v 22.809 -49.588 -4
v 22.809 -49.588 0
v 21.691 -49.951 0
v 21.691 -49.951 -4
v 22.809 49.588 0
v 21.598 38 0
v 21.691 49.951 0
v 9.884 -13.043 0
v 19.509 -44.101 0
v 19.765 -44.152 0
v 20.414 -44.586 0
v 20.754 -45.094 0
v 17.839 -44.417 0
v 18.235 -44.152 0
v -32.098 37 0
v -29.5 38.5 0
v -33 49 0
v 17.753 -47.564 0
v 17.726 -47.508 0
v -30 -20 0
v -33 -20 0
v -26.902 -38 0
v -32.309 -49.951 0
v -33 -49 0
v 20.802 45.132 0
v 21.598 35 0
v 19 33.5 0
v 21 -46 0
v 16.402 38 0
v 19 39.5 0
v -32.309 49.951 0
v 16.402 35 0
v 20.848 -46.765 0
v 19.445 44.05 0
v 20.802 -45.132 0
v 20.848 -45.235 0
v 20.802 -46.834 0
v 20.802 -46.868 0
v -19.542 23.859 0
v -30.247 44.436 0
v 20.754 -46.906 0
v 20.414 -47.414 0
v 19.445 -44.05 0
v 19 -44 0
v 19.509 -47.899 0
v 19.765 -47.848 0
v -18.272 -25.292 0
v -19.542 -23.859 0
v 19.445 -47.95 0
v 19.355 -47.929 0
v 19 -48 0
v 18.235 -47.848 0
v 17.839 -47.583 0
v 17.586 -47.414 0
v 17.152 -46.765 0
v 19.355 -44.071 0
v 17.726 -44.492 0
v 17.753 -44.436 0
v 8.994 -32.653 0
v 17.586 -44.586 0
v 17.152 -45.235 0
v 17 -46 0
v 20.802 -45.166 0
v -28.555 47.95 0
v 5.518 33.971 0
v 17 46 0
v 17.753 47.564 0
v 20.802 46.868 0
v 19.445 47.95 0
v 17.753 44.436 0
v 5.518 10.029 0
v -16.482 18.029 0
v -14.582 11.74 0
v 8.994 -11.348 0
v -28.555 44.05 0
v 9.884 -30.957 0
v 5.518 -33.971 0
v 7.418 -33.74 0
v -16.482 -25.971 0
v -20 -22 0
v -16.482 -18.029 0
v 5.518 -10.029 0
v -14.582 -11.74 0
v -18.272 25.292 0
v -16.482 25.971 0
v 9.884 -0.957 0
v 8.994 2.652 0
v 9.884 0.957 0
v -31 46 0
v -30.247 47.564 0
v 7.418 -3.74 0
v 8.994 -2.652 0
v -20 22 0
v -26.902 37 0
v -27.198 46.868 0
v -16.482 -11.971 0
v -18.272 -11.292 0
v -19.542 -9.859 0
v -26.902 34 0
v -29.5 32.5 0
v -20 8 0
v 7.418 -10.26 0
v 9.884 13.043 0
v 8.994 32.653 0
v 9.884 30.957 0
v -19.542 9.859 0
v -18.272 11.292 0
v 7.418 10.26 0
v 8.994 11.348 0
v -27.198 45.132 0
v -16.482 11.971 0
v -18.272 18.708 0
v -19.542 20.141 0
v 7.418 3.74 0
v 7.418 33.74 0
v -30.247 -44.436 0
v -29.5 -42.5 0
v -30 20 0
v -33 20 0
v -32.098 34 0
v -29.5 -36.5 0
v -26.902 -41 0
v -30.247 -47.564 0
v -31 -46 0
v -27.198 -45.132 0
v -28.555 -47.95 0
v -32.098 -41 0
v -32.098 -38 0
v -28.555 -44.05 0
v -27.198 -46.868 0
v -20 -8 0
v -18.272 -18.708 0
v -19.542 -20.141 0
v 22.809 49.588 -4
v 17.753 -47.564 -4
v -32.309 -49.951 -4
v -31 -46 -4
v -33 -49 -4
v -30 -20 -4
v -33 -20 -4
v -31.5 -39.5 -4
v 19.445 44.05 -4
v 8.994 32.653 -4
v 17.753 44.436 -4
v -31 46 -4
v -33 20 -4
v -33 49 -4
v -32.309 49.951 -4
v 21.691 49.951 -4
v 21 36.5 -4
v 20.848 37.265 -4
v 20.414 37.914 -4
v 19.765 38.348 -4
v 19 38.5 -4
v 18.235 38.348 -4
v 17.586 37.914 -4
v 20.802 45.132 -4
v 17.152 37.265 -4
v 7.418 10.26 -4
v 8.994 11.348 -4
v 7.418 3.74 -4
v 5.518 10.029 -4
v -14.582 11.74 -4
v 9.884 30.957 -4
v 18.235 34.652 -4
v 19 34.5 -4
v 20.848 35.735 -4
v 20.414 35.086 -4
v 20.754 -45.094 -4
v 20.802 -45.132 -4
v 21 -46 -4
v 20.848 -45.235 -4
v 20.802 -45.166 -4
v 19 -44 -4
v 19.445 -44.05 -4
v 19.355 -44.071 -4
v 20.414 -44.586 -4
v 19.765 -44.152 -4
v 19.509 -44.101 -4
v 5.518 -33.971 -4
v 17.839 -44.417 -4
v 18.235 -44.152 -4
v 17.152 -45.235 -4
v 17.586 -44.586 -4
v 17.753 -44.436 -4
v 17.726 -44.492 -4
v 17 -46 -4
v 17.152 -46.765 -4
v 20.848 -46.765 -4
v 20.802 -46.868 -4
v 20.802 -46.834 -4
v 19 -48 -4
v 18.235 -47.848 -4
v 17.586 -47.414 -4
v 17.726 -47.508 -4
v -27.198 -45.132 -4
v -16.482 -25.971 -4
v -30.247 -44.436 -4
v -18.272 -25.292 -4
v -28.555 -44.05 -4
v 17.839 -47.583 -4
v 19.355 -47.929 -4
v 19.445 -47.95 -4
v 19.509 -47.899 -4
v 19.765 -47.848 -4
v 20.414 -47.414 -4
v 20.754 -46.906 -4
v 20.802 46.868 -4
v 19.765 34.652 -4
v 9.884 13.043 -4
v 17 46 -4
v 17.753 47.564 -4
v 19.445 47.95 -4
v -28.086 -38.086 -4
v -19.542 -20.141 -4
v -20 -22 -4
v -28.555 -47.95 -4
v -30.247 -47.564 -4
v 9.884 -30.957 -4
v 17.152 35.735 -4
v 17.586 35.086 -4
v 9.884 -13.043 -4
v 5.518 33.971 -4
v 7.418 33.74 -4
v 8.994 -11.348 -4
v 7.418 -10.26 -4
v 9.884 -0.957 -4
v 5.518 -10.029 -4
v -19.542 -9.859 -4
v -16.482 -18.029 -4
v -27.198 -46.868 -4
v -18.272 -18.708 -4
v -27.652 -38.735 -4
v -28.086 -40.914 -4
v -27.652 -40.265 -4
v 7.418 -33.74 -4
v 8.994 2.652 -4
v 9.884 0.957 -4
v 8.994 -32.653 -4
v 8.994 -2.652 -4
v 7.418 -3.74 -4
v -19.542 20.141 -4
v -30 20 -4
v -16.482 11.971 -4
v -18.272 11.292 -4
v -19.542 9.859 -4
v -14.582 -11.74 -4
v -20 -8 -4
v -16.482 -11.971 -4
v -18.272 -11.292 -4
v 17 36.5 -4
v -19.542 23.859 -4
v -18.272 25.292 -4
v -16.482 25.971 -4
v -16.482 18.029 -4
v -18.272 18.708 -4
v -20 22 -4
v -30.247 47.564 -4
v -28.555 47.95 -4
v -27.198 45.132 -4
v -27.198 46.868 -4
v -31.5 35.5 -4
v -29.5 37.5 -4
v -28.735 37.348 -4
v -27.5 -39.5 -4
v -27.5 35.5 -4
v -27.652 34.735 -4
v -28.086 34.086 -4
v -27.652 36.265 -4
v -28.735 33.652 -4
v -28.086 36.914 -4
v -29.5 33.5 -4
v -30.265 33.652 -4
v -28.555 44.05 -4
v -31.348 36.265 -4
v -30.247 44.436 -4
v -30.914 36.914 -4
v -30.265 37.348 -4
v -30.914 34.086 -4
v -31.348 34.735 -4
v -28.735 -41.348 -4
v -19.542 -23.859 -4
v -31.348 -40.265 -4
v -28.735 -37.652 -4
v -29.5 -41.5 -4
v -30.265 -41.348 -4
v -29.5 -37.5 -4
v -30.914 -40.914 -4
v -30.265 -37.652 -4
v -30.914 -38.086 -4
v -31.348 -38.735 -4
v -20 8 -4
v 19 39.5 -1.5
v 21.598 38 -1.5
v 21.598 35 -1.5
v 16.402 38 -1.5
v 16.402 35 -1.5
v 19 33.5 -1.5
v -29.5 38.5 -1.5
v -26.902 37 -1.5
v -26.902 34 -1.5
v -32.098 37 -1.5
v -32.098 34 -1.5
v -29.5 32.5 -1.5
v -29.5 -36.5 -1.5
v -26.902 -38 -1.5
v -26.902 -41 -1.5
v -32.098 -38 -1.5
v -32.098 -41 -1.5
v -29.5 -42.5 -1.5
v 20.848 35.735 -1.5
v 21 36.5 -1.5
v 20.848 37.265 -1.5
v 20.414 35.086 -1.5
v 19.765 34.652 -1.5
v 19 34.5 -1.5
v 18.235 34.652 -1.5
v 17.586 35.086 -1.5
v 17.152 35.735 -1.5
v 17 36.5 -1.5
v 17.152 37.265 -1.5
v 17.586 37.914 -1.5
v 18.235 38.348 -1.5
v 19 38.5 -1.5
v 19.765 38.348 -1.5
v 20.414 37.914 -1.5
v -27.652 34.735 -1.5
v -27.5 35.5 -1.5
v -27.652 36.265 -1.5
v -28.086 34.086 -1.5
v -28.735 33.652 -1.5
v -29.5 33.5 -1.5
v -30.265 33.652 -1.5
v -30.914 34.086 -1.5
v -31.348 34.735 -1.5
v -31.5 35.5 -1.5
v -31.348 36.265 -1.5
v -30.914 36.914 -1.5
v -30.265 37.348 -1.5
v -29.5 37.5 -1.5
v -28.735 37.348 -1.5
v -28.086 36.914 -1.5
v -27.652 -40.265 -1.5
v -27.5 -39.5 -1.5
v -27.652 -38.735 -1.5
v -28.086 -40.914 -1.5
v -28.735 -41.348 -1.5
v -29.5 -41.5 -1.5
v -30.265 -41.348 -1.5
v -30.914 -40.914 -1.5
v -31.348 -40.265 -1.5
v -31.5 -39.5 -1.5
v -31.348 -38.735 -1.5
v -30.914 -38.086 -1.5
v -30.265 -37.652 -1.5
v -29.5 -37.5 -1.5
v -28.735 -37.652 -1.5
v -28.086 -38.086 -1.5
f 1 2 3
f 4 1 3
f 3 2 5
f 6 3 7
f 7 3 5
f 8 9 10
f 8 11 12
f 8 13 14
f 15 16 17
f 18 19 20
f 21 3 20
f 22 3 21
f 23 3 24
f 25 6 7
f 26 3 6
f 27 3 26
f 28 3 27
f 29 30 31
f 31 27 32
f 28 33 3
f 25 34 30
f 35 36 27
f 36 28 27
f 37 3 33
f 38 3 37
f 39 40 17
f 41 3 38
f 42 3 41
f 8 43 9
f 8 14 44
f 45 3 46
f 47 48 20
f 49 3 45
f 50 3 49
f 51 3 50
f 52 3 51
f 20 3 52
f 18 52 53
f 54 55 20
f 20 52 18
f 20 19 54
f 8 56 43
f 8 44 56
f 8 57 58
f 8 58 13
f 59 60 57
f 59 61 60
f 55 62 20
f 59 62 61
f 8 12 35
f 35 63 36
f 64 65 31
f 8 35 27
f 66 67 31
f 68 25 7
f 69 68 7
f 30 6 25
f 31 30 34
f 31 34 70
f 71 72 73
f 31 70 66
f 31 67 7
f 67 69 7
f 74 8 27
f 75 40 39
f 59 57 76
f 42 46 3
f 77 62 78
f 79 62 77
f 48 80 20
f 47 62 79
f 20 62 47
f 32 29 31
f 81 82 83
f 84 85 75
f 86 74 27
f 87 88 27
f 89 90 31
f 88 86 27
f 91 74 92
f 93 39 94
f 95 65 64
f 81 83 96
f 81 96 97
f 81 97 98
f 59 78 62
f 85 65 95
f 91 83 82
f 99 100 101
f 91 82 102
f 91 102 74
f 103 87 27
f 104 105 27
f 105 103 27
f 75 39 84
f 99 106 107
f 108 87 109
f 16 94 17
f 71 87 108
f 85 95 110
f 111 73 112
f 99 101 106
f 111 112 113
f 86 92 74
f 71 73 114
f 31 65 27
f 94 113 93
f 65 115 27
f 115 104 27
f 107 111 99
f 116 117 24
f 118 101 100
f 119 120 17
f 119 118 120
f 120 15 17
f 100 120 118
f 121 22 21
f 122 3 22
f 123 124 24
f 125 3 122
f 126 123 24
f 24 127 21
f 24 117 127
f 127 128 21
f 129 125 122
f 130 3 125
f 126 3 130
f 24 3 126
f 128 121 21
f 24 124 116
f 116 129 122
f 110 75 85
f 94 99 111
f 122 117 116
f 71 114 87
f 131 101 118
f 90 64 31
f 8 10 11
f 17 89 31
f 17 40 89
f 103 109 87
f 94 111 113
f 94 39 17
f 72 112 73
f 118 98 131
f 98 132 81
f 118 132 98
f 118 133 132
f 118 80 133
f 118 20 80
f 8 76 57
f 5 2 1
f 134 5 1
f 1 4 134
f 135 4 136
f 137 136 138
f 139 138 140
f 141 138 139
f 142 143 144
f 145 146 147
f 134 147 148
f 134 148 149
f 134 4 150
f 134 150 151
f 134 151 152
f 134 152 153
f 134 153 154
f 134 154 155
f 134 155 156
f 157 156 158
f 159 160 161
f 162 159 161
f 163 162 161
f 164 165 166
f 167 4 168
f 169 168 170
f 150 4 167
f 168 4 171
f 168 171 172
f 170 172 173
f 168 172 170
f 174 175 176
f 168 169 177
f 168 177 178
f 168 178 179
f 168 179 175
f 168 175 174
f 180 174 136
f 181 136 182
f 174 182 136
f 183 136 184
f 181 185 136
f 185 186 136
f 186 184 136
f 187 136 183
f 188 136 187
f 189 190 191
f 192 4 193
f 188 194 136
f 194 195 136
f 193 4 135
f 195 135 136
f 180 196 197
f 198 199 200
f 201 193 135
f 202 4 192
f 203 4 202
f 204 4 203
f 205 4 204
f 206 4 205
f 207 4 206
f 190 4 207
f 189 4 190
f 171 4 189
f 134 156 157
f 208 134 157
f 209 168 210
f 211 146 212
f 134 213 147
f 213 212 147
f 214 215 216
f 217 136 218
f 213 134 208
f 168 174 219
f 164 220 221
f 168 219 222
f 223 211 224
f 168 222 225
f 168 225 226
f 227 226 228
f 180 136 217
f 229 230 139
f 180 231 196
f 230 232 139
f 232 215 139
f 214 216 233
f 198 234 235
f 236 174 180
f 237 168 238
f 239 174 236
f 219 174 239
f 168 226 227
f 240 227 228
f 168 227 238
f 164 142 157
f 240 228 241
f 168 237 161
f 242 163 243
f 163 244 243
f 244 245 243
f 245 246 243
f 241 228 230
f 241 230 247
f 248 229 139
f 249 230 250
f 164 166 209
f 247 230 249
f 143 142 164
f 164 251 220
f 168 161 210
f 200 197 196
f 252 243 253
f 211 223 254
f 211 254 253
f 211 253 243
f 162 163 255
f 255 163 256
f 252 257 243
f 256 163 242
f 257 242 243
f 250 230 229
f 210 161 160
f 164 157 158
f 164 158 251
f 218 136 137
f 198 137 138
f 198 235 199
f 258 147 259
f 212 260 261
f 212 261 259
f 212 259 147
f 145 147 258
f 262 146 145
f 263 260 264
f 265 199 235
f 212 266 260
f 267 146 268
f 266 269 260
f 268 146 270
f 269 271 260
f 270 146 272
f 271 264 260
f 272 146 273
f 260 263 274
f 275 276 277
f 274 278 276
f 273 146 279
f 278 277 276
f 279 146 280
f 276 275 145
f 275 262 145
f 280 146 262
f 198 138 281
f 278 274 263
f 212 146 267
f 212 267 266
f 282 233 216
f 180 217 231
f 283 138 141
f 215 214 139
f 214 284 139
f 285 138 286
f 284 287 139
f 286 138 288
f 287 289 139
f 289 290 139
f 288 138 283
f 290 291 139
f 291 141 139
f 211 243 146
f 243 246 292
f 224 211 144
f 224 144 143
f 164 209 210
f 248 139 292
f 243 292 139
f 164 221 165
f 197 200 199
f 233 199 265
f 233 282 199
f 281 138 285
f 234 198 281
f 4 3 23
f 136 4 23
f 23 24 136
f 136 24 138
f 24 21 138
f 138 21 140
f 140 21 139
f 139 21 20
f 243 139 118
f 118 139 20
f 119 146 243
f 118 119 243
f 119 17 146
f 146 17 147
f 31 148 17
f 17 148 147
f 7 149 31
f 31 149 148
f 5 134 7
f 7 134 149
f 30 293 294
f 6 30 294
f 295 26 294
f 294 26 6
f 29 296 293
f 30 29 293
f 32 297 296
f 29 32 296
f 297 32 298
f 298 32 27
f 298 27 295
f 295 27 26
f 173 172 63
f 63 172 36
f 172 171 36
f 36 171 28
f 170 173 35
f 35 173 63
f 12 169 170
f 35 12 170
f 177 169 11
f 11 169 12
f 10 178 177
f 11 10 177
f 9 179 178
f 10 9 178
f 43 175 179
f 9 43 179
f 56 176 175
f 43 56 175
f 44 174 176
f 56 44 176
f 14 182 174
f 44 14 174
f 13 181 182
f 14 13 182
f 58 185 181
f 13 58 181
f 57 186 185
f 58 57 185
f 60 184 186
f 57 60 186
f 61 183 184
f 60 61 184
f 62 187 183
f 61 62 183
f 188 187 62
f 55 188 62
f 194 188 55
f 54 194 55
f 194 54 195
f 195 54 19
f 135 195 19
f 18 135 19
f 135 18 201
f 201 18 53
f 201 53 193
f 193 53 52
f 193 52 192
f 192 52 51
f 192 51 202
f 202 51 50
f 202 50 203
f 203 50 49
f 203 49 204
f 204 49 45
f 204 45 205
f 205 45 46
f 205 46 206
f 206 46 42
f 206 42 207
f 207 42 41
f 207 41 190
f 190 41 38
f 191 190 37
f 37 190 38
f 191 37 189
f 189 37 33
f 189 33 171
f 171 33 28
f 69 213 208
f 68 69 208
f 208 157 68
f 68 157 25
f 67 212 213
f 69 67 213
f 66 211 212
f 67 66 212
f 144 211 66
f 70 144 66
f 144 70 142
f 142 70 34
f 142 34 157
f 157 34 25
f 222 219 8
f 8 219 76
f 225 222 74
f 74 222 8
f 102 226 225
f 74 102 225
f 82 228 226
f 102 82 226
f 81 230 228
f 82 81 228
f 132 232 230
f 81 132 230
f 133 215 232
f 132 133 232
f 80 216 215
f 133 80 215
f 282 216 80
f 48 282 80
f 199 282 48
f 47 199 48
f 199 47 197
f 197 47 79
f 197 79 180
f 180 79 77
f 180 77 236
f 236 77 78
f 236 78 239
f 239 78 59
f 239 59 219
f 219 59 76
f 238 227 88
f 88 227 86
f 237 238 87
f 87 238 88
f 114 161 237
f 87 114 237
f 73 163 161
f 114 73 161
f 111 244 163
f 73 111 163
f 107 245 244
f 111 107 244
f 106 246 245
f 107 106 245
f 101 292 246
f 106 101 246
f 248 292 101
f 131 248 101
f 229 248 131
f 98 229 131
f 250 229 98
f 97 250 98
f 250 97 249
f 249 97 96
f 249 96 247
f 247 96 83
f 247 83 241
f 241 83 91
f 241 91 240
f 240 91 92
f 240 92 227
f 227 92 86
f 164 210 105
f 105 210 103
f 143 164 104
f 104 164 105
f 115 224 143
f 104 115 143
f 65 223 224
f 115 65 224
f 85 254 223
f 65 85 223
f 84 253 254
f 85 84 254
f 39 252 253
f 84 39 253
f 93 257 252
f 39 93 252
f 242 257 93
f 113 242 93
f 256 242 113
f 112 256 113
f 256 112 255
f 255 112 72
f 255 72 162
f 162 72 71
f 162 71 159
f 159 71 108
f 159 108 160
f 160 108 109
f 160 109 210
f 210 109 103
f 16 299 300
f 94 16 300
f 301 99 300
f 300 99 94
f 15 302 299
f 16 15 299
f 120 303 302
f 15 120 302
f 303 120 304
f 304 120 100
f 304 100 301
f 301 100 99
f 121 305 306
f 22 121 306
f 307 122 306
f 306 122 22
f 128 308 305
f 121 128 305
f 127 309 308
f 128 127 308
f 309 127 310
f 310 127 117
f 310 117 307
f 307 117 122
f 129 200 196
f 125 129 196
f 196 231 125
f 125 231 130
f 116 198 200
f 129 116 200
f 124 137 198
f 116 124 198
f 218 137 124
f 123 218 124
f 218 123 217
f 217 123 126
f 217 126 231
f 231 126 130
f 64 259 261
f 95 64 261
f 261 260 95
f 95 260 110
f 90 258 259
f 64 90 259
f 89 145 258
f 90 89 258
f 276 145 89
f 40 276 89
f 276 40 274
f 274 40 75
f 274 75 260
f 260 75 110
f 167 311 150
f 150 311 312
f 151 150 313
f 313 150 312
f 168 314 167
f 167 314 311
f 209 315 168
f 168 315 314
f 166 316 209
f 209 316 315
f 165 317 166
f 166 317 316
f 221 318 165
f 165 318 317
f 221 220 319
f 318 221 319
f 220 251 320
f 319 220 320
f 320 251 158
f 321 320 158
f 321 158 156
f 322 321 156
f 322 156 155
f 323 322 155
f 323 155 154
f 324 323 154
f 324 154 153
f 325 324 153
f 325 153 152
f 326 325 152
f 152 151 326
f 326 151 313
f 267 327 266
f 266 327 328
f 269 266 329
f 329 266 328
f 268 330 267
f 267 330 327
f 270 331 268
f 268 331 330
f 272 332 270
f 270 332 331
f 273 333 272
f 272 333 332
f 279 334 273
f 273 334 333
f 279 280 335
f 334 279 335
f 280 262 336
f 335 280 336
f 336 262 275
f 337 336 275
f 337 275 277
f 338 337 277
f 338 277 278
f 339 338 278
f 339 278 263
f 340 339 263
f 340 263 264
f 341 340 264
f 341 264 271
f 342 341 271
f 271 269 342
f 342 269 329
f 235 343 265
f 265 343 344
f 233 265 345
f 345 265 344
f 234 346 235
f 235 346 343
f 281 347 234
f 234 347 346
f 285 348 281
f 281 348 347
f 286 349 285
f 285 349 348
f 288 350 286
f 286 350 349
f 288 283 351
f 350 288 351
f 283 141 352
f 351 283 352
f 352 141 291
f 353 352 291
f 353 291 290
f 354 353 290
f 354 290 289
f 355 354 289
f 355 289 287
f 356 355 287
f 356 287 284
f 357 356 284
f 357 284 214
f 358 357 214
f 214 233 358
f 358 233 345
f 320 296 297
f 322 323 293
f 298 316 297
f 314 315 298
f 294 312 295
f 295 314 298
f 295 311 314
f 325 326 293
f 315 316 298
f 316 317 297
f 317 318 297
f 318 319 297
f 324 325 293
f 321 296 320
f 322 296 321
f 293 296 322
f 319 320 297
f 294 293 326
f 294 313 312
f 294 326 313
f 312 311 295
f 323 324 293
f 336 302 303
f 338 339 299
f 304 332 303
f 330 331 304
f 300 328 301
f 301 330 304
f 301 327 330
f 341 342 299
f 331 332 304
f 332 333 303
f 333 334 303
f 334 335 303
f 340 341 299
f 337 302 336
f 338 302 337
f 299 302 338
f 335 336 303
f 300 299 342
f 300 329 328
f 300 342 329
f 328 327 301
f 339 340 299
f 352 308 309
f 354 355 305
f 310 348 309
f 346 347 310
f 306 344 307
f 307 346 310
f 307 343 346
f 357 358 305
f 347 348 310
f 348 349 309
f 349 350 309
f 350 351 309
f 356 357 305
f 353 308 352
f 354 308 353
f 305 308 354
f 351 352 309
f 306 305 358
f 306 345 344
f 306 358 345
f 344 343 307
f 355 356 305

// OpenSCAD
//Arduino Mega Board: 54x102x10


module pasantes(z){
	translate([29,46,-1])cylinder(r=2,h=z);
	translate([29,-46,-1])cylinder(r=2,h=z);
	translate([-19,46,-1])cylinder(r=2,h=z);
	translate([-19,-46,-1])cylinder(r=2,h=z);
}
module mega(z){
	translate([13.5,51,-1])cylinder(r=2,h=z,$fn=16);
	translate([12.5,2.5,-1])cylinder(r=2,h=z,$fn=16);
	translate([88.5,51,-1])cylinder(r=2,h=z,$fn=16);
	translate([95,2.5,-1])cylinder(r=2,h=z,$fn=16);	
	translate([13.5,51,-1.5])cylinder(r=3,h=3,$fn=6);
	translate([12.5,2.5,-1.5])cylinder(r=3,h=3,$fn=6);
	translate([88.5,51,-1.5])cylinder(r=3,h=3,$fn=6);
	//translate([95,2.5,-1.5])cylinder(r=3,h=3,$fn=6);
}

d=3;

rotate([0,180,0])difference(){
	hull(){
		translate([29+d,46+d,0])cylinder(r=1,h=4);
		translate([29+d,-46-d,0])cylinder(r=1,h=4);
		translate([-19-d,46+d,0])cylinder(r=1,h=4);
		translate([-19-d,-46-d,0])cylinder(r=1,h=4);
	}
	translate([30,-20,-1])cube([4,40,8]);
	hull(){
		translate([-6,0,-1])cylinder(r=4,h=6);
		translate([16,8,-1])cylinder(r=4,h=6);
		translate([16,-8,-1])cylinder(r=4,h=6);
	}
	hull(){
		translate([16,22,-1])cylinder(r=4,h=6);
		translate([-6,30,-1])cylinder(r=4,h=6);
		translate([-6,14,-1])cylinder(r=4,h=6);
	}
	hull(){
		translate([16,-22,-1])cylinder(r=4,h=6);
		translate([-6,-14,-1])cylinder(r=4,h=6);
		translate([-6,-30,-1])cylinder(r=4,h=6);
	}
	pasantes(10);
	translate([-21.5,49,0])rotate([0,0,-90])mega(10);


}/**/
